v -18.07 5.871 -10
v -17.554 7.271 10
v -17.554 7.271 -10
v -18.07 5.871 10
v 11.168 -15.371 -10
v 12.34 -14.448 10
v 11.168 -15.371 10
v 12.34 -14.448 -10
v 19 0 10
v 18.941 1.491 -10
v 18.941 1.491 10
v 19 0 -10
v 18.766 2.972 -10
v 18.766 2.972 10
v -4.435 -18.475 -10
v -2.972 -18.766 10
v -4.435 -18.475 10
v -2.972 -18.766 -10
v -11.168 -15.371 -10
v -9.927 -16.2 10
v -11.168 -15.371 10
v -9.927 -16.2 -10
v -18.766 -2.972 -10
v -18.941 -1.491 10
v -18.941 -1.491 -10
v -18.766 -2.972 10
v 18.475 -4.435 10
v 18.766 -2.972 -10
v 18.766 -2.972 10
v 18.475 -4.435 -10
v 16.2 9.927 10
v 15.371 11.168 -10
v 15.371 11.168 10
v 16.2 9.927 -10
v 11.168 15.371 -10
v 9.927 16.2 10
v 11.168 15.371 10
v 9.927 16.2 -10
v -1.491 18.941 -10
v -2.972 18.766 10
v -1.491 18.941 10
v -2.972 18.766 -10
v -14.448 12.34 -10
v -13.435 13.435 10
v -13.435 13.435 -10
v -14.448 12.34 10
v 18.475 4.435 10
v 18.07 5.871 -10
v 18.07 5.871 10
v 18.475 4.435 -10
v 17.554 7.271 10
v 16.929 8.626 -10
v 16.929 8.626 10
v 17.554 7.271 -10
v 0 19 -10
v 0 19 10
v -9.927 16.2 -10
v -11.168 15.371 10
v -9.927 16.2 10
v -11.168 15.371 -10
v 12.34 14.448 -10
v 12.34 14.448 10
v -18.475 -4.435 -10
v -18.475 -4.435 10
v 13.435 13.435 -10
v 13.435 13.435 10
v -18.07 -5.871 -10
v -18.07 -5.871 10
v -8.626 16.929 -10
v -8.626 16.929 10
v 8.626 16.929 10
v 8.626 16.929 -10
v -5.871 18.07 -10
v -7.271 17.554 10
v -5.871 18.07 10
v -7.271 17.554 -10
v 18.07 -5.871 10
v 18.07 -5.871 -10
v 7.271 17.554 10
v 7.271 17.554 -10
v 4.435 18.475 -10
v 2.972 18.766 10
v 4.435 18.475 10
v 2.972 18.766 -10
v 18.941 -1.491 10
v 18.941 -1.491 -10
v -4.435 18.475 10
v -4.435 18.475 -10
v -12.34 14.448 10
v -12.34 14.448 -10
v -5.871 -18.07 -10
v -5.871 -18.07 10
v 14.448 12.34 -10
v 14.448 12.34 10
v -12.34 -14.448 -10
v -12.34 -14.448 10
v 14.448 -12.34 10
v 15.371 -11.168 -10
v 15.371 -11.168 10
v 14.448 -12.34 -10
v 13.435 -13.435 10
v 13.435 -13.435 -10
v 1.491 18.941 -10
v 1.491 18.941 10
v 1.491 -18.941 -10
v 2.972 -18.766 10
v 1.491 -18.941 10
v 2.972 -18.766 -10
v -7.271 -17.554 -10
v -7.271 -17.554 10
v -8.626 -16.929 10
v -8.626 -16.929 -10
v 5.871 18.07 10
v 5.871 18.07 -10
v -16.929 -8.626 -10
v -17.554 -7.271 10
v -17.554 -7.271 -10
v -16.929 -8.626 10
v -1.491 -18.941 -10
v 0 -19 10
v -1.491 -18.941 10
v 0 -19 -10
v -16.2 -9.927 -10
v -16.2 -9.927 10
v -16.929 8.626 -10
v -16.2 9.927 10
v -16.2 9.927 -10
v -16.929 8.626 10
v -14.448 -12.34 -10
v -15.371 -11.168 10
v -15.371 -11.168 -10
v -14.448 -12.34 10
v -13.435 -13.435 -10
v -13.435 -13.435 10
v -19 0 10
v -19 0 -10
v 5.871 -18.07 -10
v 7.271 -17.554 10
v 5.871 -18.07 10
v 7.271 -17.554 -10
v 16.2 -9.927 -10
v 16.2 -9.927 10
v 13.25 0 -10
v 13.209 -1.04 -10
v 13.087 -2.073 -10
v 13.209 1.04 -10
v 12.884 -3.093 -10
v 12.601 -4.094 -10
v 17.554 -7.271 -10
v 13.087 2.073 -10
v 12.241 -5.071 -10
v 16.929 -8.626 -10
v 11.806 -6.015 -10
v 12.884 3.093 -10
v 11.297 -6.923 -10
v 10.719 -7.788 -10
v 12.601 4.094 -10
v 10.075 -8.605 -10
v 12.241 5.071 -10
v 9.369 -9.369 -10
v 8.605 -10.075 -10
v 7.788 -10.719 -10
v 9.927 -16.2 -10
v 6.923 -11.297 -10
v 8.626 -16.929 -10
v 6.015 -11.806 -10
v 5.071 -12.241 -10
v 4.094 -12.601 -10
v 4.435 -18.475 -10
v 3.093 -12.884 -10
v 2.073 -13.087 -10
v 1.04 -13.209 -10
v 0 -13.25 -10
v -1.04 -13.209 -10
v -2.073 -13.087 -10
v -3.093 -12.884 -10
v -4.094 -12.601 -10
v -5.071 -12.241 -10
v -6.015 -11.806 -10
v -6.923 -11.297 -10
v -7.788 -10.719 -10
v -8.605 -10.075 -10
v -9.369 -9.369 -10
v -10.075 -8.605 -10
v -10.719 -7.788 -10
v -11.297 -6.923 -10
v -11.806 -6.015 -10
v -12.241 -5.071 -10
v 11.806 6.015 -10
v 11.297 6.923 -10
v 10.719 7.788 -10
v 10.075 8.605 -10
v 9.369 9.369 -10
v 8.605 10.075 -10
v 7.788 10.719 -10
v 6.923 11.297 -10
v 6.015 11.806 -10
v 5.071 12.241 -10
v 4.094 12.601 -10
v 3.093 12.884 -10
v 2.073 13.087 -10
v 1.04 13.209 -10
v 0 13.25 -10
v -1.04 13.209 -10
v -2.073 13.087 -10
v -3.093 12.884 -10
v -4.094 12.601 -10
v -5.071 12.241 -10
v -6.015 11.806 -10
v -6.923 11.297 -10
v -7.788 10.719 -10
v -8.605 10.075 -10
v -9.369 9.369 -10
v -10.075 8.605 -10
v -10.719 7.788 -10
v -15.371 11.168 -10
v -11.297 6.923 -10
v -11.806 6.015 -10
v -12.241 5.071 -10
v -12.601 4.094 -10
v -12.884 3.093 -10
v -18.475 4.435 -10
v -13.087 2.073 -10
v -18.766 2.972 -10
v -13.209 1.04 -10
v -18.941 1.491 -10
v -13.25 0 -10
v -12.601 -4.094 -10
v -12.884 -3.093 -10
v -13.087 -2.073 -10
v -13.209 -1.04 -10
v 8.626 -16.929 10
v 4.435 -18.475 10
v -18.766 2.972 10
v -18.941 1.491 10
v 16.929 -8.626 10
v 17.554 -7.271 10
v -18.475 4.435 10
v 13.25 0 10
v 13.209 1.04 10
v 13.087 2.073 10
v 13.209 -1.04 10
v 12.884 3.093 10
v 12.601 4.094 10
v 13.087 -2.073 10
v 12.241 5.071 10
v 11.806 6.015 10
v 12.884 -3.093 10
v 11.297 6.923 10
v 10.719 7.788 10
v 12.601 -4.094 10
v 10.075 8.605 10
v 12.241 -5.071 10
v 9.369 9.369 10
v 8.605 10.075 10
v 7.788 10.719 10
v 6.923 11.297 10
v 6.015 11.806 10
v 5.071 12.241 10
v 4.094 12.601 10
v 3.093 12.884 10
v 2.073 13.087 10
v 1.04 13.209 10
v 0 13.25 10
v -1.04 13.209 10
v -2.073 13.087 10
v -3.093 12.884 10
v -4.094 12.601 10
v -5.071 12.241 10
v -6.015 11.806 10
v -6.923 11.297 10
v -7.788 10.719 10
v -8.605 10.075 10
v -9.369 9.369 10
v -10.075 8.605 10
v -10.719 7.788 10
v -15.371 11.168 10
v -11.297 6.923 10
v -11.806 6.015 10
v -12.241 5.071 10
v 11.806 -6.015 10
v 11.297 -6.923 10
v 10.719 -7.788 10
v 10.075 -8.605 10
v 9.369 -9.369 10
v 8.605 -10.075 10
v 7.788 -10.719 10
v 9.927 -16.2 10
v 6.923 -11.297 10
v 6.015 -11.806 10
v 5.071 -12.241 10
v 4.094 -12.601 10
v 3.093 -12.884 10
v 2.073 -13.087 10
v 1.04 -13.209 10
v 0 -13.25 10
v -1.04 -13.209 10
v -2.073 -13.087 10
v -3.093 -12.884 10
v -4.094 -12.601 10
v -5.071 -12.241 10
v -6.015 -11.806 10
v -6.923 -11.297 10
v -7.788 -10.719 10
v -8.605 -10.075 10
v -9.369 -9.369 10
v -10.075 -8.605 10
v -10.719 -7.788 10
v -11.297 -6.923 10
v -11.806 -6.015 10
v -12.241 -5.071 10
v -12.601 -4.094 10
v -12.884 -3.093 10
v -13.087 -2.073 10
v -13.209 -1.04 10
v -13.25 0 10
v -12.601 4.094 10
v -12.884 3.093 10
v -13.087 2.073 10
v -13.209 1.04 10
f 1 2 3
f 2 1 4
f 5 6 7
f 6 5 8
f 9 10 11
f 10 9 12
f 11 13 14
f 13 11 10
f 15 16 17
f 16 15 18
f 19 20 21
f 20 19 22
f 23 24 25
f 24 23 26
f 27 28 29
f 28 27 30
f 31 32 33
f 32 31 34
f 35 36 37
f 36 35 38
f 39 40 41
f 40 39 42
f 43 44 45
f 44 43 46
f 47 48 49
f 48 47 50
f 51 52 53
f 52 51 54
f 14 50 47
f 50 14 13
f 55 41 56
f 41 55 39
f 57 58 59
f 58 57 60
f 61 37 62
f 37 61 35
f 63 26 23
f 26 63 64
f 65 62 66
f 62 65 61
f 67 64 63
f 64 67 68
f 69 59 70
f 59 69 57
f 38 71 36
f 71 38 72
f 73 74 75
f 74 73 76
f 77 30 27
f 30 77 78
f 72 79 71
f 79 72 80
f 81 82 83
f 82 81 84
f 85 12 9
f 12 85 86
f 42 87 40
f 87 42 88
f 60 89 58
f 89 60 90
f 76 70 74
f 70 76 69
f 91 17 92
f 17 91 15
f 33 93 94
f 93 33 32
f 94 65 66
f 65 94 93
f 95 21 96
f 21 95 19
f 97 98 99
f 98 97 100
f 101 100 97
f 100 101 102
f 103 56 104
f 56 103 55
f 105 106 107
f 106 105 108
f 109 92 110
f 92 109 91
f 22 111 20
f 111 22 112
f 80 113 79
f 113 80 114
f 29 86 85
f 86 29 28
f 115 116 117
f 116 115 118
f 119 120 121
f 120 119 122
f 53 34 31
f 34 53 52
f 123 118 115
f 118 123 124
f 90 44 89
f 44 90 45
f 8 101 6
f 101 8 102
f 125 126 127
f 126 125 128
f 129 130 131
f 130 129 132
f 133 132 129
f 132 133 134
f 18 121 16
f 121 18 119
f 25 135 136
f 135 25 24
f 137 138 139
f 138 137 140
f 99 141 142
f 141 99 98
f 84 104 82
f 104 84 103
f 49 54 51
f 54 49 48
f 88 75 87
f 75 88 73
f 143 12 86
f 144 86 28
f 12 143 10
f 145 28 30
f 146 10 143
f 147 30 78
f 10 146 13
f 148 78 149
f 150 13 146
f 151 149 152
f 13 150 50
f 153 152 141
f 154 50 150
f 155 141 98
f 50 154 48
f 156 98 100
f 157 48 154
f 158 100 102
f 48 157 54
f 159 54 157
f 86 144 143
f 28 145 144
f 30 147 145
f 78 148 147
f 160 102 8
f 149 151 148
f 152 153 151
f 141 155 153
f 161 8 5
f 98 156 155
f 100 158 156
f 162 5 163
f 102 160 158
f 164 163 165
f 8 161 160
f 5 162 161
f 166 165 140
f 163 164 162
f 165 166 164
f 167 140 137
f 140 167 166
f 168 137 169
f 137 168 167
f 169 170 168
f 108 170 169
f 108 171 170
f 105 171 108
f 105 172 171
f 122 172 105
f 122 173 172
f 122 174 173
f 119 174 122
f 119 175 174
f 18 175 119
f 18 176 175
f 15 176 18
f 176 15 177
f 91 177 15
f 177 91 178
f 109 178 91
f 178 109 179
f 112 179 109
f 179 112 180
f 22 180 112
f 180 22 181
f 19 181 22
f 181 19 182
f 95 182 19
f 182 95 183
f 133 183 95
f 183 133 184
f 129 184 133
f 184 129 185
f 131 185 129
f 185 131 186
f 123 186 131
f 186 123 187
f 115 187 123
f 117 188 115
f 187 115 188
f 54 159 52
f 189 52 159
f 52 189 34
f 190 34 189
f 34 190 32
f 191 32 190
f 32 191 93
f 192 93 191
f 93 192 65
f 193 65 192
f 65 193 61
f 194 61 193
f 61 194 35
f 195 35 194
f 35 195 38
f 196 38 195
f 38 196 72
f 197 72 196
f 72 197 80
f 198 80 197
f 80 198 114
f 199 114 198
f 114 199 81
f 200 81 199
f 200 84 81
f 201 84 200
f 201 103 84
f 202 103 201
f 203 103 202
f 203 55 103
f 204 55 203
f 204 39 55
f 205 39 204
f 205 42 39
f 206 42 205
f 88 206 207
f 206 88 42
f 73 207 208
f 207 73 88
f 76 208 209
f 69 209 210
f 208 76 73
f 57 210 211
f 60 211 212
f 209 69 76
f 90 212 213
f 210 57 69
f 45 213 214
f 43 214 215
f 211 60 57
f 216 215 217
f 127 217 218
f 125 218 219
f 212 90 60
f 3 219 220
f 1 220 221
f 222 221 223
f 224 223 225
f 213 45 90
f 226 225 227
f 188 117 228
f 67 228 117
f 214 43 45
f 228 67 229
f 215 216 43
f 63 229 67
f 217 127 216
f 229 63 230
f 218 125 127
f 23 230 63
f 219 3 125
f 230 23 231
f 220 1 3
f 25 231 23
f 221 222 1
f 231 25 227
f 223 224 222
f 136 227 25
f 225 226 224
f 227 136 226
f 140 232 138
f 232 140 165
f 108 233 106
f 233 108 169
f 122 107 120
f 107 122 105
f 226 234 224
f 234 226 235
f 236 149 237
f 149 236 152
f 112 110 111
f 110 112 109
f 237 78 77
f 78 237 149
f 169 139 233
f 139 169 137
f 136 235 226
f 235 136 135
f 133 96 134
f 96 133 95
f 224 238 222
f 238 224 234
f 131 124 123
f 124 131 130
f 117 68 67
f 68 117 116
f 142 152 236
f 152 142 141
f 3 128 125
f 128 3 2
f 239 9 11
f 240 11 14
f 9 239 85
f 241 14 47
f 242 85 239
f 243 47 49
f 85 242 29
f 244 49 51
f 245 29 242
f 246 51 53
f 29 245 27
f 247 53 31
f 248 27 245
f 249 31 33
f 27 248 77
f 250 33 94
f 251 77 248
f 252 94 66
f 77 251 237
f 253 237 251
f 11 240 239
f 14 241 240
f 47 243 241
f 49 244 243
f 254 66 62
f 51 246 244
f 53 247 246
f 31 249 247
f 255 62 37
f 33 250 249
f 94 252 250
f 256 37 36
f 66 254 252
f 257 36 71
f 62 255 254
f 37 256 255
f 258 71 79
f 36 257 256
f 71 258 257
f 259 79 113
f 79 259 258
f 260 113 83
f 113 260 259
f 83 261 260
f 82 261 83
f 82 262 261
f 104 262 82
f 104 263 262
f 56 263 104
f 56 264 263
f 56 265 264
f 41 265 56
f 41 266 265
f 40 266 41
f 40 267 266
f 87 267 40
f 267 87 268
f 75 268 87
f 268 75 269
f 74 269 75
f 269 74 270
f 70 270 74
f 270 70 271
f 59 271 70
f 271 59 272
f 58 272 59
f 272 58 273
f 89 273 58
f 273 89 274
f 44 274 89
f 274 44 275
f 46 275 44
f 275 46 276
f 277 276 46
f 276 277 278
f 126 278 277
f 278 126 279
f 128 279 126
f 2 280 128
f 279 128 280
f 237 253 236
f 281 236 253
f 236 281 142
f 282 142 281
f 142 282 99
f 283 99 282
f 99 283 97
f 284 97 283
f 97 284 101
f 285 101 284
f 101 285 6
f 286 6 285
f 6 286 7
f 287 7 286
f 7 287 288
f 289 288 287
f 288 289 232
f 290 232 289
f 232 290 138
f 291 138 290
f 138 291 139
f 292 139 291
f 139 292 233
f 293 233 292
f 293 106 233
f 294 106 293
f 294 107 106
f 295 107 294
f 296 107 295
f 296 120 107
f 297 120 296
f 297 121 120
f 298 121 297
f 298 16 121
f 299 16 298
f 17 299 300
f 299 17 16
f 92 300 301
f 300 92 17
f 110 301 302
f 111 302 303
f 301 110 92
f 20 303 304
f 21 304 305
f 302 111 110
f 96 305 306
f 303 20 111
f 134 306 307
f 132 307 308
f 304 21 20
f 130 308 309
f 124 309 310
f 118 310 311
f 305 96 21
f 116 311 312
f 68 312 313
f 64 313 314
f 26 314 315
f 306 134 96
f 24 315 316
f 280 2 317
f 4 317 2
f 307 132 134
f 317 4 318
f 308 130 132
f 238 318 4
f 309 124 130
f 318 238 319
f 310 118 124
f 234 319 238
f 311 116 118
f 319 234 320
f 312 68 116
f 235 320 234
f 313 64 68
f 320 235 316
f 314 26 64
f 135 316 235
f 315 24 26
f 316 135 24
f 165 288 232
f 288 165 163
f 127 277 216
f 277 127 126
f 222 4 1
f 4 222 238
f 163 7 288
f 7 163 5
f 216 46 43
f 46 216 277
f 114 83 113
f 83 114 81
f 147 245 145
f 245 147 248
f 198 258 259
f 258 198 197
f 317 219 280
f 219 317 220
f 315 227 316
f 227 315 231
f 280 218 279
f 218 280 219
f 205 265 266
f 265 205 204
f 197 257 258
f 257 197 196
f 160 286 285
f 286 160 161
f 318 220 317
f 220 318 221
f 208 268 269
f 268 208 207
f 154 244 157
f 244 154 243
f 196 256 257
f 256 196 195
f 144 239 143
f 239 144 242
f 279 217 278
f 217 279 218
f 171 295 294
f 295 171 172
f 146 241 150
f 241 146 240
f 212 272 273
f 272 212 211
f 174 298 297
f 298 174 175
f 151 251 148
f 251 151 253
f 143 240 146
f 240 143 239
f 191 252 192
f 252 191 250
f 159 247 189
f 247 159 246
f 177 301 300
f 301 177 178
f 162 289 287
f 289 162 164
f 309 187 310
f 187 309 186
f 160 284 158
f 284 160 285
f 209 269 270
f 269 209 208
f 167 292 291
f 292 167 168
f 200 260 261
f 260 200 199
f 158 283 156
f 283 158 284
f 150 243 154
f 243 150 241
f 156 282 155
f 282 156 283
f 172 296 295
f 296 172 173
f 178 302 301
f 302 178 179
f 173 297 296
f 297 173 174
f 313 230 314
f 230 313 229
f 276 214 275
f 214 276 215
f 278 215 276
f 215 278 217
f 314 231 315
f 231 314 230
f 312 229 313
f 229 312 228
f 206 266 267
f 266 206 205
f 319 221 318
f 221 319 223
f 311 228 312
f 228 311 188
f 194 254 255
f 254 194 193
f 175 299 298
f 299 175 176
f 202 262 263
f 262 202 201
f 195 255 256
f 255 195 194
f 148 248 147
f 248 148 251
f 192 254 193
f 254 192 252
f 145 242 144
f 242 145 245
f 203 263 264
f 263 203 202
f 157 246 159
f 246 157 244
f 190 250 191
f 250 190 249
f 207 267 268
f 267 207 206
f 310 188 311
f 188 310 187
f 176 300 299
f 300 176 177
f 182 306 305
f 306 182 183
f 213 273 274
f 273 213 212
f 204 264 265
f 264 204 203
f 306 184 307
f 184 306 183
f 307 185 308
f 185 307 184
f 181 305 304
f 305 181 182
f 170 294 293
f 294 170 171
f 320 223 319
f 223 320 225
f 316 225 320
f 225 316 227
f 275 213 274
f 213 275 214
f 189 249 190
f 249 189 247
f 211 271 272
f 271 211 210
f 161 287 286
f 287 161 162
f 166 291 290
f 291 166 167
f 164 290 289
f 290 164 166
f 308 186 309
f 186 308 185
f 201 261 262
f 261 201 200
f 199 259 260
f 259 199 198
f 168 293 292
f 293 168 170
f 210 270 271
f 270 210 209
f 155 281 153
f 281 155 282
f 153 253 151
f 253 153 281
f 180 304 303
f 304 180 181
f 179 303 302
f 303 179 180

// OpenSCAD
$fn = 80;
difference(){
  cylinder(h = 20, d = 38, center = true);
  cylinder(h = 20, d = 26.5, center = true);
}
